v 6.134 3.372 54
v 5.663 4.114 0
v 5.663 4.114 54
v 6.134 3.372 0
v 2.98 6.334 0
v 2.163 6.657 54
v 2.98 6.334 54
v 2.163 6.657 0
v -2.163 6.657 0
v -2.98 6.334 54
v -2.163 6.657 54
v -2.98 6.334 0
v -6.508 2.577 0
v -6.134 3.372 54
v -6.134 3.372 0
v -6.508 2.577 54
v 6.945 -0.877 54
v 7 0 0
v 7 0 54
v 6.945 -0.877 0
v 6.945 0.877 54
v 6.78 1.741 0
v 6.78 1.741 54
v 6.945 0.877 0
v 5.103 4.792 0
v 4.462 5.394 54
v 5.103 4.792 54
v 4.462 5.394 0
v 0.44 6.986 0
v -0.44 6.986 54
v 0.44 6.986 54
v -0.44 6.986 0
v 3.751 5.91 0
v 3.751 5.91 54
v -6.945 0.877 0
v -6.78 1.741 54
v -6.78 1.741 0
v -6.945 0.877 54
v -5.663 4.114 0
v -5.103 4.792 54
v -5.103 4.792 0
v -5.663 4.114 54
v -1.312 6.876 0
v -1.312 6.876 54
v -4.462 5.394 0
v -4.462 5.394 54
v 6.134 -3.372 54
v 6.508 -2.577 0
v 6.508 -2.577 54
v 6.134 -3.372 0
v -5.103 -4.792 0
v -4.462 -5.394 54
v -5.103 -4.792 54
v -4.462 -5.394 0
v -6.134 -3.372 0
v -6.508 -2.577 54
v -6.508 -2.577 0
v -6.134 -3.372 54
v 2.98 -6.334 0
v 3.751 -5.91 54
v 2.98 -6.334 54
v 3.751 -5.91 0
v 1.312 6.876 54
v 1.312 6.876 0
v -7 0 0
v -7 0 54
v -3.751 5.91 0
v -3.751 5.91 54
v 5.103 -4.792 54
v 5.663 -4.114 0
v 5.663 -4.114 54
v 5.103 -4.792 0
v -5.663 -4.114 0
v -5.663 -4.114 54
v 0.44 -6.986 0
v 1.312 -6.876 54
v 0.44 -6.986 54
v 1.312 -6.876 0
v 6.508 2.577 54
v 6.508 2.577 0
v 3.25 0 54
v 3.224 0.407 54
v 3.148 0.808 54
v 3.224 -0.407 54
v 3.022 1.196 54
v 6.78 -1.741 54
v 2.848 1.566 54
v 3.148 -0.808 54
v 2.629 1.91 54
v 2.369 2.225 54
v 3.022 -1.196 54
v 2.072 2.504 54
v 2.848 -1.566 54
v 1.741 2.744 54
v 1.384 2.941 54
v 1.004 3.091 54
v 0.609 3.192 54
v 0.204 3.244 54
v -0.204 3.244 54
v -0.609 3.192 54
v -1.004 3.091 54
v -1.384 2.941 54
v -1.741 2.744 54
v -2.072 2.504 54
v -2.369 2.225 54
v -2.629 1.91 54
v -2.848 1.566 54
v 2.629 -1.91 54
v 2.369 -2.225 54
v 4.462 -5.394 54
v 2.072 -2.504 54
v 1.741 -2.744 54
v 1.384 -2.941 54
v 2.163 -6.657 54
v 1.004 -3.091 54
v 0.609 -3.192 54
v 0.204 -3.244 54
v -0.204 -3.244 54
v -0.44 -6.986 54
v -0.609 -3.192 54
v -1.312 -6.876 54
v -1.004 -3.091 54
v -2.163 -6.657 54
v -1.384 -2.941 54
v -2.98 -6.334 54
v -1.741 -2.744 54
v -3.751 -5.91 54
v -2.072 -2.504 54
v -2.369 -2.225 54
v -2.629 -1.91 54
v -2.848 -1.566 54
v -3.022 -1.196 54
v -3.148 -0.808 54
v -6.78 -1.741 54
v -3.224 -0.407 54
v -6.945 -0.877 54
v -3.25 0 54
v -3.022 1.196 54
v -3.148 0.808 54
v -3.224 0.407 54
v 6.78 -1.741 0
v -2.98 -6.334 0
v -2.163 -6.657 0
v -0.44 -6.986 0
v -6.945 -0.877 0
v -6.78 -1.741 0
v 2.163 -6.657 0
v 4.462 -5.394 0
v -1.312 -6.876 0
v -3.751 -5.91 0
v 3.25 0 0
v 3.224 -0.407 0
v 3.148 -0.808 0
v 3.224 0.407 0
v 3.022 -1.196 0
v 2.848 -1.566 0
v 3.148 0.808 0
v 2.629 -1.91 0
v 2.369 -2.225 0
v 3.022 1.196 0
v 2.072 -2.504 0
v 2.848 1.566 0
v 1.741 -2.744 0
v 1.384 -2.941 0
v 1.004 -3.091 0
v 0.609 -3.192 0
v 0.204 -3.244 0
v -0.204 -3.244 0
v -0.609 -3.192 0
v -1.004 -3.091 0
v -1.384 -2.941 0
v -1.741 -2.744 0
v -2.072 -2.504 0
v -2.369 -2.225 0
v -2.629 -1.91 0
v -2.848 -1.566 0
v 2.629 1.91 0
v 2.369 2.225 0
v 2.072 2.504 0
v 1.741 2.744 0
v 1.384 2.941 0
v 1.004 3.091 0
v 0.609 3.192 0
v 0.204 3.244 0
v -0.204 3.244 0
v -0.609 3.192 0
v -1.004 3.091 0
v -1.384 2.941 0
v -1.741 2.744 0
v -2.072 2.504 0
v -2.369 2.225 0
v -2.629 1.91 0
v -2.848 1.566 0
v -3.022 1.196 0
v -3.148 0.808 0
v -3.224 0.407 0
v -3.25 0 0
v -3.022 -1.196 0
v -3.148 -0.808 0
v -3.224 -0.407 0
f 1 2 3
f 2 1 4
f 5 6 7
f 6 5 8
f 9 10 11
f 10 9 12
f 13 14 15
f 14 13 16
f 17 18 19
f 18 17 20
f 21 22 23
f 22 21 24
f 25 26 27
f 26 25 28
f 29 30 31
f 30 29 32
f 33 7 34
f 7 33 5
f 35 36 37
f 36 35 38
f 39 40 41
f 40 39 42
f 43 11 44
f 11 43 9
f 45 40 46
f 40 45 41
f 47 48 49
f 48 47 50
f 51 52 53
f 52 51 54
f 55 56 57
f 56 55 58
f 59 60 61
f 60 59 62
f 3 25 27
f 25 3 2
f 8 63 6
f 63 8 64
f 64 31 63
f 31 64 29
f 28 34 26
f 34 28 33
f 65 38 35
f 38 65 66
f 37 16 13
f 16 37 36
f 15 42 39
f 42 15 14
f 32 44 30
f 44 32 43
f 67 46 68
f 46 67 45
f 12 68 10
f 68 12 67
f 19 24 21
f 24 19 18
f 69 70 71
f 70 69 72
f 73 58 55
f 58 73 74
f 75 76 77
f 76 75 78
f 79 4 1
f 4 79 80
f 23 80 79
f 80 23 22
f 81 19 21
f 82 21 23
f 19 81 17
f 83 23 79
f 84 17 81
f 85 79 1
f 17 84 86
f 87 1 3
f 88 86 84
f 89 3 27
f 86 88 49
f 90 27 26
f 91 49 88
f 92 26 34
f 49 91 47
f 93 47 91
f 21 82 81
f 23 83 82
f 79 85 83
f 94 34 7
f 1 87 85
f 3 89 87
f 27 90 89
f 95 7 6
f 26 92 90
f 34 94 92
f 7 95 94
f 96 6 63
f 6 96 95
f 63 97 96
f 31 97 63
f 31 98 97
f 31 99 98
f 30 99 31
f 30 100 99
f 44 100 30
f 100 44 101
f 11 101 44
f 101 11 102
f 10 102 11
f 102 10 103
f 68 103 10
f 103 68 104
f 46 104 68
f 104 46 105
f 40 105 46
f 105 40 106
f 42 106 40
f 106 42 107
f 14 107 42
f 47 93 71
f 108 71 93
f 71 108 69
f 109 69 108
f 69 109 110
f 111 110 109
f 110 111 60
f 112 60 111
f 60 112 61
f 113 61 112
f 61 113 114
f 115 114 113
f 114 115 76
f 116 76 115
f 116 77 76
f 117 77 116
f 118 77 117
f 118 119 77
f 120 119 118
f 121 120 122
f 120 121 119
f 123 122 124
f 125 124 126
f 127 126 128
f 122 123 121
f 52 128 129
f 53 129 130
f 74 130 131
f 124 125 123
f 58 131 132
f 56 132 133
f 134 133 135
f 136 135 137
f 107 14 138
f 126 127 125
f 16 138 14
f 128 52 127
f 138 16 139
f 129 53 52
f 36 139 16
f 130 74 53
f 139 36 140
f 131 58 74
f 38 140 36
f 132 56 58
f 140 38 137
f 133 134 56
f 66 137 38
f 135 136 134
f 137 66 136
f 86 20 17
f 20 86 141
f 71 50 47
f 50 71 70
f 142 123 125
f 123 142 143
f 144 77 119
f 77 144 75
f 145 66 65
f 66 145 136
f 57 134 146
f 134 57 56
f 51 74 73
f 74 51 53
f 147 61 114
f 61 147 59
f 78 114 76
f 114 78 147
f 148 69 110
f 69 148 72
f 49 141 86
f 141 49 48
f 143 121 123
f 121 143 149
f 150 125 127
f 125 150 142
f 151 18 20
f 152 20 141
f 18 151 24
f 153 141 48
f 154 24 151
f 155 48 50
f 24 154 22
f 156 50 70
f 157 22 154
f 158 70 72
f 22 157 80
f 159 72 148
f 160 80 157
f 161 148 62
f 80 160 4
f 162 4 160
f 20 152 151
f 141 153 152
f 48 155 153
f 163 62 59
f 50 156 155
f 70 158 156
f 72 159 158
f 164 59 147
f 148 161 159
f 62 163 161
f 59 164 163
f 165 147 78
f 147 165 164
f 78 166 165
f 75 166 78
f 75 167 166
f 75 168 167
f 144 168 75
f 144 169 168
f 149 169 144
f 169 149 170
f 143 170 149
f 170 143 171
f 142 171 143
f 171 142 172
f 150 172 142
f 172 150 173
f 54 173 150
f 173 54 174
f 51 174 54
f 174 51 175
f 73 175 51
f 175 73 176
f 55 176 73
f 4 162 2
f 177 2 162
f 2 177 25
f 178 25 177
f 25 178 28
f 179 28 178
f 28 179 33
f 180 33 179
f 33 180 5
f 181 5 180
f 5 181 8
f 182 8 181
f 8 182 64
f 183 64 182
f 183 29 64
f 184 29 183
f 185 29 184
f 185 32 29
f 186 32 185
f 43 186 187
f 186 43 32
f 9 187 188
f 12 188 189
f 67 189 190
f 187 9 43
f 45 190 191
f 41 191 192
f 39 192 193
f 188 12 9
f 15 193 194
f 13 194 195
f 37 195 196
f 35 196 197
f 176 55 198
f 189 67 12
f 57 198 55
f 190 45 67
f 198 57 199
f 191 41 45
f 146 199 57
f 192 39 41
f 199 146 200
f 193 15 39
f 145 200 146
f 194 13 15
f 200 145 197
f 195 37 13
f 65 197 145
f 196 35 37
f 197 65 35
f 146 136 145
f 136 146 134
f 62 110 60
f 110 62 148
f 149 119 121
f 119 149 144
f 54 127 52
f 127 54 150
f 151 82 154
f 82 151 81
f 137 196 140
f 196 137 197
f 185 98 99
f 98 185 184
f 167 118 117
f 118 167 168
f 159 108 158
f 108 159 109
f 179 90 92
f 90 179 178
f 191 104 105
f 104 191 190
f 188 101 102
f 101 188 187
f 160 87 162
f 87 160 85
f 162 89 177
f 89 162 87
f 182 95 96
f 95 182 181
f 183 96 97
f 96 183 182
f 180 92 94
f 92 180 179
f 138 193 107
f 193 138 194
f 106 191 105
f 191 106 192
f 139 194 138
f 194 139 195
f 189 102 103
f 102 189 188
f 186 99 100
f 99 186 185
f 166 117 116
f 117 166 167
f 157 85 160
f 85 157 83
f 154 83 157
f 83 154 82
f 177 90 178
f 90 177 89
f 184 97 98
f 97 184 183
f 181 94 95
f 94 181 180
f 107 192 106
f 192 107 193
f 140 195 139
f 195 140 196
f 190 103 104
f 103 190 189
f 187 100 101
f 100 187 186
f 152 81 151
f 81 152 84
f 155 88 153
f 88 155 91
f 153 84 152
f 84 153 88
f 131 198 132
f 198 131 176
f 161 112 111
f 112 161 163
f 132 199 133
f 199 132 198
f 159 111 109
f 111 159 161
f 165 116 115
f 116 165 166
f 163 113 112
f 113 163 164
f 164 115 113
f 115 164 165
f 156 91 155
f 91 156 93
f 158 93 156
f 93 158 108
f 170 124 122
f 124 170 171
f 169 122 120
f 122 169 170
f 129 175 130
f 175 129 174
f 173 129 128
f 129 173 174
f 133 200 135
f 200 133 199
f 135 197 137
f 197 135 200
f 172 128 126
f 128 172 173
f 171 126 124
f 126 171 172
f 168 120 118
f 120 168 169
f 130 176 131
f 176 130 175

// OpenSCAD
$fn = 50;


difference() {
	union() {
		cylinder(h = 54, r = 7.0000000000);
	}
	union() {
		translate(v = [0, 0, -100]) {
			cylinder(h = 200, r = 3.2500000000);
		}
	}
}
